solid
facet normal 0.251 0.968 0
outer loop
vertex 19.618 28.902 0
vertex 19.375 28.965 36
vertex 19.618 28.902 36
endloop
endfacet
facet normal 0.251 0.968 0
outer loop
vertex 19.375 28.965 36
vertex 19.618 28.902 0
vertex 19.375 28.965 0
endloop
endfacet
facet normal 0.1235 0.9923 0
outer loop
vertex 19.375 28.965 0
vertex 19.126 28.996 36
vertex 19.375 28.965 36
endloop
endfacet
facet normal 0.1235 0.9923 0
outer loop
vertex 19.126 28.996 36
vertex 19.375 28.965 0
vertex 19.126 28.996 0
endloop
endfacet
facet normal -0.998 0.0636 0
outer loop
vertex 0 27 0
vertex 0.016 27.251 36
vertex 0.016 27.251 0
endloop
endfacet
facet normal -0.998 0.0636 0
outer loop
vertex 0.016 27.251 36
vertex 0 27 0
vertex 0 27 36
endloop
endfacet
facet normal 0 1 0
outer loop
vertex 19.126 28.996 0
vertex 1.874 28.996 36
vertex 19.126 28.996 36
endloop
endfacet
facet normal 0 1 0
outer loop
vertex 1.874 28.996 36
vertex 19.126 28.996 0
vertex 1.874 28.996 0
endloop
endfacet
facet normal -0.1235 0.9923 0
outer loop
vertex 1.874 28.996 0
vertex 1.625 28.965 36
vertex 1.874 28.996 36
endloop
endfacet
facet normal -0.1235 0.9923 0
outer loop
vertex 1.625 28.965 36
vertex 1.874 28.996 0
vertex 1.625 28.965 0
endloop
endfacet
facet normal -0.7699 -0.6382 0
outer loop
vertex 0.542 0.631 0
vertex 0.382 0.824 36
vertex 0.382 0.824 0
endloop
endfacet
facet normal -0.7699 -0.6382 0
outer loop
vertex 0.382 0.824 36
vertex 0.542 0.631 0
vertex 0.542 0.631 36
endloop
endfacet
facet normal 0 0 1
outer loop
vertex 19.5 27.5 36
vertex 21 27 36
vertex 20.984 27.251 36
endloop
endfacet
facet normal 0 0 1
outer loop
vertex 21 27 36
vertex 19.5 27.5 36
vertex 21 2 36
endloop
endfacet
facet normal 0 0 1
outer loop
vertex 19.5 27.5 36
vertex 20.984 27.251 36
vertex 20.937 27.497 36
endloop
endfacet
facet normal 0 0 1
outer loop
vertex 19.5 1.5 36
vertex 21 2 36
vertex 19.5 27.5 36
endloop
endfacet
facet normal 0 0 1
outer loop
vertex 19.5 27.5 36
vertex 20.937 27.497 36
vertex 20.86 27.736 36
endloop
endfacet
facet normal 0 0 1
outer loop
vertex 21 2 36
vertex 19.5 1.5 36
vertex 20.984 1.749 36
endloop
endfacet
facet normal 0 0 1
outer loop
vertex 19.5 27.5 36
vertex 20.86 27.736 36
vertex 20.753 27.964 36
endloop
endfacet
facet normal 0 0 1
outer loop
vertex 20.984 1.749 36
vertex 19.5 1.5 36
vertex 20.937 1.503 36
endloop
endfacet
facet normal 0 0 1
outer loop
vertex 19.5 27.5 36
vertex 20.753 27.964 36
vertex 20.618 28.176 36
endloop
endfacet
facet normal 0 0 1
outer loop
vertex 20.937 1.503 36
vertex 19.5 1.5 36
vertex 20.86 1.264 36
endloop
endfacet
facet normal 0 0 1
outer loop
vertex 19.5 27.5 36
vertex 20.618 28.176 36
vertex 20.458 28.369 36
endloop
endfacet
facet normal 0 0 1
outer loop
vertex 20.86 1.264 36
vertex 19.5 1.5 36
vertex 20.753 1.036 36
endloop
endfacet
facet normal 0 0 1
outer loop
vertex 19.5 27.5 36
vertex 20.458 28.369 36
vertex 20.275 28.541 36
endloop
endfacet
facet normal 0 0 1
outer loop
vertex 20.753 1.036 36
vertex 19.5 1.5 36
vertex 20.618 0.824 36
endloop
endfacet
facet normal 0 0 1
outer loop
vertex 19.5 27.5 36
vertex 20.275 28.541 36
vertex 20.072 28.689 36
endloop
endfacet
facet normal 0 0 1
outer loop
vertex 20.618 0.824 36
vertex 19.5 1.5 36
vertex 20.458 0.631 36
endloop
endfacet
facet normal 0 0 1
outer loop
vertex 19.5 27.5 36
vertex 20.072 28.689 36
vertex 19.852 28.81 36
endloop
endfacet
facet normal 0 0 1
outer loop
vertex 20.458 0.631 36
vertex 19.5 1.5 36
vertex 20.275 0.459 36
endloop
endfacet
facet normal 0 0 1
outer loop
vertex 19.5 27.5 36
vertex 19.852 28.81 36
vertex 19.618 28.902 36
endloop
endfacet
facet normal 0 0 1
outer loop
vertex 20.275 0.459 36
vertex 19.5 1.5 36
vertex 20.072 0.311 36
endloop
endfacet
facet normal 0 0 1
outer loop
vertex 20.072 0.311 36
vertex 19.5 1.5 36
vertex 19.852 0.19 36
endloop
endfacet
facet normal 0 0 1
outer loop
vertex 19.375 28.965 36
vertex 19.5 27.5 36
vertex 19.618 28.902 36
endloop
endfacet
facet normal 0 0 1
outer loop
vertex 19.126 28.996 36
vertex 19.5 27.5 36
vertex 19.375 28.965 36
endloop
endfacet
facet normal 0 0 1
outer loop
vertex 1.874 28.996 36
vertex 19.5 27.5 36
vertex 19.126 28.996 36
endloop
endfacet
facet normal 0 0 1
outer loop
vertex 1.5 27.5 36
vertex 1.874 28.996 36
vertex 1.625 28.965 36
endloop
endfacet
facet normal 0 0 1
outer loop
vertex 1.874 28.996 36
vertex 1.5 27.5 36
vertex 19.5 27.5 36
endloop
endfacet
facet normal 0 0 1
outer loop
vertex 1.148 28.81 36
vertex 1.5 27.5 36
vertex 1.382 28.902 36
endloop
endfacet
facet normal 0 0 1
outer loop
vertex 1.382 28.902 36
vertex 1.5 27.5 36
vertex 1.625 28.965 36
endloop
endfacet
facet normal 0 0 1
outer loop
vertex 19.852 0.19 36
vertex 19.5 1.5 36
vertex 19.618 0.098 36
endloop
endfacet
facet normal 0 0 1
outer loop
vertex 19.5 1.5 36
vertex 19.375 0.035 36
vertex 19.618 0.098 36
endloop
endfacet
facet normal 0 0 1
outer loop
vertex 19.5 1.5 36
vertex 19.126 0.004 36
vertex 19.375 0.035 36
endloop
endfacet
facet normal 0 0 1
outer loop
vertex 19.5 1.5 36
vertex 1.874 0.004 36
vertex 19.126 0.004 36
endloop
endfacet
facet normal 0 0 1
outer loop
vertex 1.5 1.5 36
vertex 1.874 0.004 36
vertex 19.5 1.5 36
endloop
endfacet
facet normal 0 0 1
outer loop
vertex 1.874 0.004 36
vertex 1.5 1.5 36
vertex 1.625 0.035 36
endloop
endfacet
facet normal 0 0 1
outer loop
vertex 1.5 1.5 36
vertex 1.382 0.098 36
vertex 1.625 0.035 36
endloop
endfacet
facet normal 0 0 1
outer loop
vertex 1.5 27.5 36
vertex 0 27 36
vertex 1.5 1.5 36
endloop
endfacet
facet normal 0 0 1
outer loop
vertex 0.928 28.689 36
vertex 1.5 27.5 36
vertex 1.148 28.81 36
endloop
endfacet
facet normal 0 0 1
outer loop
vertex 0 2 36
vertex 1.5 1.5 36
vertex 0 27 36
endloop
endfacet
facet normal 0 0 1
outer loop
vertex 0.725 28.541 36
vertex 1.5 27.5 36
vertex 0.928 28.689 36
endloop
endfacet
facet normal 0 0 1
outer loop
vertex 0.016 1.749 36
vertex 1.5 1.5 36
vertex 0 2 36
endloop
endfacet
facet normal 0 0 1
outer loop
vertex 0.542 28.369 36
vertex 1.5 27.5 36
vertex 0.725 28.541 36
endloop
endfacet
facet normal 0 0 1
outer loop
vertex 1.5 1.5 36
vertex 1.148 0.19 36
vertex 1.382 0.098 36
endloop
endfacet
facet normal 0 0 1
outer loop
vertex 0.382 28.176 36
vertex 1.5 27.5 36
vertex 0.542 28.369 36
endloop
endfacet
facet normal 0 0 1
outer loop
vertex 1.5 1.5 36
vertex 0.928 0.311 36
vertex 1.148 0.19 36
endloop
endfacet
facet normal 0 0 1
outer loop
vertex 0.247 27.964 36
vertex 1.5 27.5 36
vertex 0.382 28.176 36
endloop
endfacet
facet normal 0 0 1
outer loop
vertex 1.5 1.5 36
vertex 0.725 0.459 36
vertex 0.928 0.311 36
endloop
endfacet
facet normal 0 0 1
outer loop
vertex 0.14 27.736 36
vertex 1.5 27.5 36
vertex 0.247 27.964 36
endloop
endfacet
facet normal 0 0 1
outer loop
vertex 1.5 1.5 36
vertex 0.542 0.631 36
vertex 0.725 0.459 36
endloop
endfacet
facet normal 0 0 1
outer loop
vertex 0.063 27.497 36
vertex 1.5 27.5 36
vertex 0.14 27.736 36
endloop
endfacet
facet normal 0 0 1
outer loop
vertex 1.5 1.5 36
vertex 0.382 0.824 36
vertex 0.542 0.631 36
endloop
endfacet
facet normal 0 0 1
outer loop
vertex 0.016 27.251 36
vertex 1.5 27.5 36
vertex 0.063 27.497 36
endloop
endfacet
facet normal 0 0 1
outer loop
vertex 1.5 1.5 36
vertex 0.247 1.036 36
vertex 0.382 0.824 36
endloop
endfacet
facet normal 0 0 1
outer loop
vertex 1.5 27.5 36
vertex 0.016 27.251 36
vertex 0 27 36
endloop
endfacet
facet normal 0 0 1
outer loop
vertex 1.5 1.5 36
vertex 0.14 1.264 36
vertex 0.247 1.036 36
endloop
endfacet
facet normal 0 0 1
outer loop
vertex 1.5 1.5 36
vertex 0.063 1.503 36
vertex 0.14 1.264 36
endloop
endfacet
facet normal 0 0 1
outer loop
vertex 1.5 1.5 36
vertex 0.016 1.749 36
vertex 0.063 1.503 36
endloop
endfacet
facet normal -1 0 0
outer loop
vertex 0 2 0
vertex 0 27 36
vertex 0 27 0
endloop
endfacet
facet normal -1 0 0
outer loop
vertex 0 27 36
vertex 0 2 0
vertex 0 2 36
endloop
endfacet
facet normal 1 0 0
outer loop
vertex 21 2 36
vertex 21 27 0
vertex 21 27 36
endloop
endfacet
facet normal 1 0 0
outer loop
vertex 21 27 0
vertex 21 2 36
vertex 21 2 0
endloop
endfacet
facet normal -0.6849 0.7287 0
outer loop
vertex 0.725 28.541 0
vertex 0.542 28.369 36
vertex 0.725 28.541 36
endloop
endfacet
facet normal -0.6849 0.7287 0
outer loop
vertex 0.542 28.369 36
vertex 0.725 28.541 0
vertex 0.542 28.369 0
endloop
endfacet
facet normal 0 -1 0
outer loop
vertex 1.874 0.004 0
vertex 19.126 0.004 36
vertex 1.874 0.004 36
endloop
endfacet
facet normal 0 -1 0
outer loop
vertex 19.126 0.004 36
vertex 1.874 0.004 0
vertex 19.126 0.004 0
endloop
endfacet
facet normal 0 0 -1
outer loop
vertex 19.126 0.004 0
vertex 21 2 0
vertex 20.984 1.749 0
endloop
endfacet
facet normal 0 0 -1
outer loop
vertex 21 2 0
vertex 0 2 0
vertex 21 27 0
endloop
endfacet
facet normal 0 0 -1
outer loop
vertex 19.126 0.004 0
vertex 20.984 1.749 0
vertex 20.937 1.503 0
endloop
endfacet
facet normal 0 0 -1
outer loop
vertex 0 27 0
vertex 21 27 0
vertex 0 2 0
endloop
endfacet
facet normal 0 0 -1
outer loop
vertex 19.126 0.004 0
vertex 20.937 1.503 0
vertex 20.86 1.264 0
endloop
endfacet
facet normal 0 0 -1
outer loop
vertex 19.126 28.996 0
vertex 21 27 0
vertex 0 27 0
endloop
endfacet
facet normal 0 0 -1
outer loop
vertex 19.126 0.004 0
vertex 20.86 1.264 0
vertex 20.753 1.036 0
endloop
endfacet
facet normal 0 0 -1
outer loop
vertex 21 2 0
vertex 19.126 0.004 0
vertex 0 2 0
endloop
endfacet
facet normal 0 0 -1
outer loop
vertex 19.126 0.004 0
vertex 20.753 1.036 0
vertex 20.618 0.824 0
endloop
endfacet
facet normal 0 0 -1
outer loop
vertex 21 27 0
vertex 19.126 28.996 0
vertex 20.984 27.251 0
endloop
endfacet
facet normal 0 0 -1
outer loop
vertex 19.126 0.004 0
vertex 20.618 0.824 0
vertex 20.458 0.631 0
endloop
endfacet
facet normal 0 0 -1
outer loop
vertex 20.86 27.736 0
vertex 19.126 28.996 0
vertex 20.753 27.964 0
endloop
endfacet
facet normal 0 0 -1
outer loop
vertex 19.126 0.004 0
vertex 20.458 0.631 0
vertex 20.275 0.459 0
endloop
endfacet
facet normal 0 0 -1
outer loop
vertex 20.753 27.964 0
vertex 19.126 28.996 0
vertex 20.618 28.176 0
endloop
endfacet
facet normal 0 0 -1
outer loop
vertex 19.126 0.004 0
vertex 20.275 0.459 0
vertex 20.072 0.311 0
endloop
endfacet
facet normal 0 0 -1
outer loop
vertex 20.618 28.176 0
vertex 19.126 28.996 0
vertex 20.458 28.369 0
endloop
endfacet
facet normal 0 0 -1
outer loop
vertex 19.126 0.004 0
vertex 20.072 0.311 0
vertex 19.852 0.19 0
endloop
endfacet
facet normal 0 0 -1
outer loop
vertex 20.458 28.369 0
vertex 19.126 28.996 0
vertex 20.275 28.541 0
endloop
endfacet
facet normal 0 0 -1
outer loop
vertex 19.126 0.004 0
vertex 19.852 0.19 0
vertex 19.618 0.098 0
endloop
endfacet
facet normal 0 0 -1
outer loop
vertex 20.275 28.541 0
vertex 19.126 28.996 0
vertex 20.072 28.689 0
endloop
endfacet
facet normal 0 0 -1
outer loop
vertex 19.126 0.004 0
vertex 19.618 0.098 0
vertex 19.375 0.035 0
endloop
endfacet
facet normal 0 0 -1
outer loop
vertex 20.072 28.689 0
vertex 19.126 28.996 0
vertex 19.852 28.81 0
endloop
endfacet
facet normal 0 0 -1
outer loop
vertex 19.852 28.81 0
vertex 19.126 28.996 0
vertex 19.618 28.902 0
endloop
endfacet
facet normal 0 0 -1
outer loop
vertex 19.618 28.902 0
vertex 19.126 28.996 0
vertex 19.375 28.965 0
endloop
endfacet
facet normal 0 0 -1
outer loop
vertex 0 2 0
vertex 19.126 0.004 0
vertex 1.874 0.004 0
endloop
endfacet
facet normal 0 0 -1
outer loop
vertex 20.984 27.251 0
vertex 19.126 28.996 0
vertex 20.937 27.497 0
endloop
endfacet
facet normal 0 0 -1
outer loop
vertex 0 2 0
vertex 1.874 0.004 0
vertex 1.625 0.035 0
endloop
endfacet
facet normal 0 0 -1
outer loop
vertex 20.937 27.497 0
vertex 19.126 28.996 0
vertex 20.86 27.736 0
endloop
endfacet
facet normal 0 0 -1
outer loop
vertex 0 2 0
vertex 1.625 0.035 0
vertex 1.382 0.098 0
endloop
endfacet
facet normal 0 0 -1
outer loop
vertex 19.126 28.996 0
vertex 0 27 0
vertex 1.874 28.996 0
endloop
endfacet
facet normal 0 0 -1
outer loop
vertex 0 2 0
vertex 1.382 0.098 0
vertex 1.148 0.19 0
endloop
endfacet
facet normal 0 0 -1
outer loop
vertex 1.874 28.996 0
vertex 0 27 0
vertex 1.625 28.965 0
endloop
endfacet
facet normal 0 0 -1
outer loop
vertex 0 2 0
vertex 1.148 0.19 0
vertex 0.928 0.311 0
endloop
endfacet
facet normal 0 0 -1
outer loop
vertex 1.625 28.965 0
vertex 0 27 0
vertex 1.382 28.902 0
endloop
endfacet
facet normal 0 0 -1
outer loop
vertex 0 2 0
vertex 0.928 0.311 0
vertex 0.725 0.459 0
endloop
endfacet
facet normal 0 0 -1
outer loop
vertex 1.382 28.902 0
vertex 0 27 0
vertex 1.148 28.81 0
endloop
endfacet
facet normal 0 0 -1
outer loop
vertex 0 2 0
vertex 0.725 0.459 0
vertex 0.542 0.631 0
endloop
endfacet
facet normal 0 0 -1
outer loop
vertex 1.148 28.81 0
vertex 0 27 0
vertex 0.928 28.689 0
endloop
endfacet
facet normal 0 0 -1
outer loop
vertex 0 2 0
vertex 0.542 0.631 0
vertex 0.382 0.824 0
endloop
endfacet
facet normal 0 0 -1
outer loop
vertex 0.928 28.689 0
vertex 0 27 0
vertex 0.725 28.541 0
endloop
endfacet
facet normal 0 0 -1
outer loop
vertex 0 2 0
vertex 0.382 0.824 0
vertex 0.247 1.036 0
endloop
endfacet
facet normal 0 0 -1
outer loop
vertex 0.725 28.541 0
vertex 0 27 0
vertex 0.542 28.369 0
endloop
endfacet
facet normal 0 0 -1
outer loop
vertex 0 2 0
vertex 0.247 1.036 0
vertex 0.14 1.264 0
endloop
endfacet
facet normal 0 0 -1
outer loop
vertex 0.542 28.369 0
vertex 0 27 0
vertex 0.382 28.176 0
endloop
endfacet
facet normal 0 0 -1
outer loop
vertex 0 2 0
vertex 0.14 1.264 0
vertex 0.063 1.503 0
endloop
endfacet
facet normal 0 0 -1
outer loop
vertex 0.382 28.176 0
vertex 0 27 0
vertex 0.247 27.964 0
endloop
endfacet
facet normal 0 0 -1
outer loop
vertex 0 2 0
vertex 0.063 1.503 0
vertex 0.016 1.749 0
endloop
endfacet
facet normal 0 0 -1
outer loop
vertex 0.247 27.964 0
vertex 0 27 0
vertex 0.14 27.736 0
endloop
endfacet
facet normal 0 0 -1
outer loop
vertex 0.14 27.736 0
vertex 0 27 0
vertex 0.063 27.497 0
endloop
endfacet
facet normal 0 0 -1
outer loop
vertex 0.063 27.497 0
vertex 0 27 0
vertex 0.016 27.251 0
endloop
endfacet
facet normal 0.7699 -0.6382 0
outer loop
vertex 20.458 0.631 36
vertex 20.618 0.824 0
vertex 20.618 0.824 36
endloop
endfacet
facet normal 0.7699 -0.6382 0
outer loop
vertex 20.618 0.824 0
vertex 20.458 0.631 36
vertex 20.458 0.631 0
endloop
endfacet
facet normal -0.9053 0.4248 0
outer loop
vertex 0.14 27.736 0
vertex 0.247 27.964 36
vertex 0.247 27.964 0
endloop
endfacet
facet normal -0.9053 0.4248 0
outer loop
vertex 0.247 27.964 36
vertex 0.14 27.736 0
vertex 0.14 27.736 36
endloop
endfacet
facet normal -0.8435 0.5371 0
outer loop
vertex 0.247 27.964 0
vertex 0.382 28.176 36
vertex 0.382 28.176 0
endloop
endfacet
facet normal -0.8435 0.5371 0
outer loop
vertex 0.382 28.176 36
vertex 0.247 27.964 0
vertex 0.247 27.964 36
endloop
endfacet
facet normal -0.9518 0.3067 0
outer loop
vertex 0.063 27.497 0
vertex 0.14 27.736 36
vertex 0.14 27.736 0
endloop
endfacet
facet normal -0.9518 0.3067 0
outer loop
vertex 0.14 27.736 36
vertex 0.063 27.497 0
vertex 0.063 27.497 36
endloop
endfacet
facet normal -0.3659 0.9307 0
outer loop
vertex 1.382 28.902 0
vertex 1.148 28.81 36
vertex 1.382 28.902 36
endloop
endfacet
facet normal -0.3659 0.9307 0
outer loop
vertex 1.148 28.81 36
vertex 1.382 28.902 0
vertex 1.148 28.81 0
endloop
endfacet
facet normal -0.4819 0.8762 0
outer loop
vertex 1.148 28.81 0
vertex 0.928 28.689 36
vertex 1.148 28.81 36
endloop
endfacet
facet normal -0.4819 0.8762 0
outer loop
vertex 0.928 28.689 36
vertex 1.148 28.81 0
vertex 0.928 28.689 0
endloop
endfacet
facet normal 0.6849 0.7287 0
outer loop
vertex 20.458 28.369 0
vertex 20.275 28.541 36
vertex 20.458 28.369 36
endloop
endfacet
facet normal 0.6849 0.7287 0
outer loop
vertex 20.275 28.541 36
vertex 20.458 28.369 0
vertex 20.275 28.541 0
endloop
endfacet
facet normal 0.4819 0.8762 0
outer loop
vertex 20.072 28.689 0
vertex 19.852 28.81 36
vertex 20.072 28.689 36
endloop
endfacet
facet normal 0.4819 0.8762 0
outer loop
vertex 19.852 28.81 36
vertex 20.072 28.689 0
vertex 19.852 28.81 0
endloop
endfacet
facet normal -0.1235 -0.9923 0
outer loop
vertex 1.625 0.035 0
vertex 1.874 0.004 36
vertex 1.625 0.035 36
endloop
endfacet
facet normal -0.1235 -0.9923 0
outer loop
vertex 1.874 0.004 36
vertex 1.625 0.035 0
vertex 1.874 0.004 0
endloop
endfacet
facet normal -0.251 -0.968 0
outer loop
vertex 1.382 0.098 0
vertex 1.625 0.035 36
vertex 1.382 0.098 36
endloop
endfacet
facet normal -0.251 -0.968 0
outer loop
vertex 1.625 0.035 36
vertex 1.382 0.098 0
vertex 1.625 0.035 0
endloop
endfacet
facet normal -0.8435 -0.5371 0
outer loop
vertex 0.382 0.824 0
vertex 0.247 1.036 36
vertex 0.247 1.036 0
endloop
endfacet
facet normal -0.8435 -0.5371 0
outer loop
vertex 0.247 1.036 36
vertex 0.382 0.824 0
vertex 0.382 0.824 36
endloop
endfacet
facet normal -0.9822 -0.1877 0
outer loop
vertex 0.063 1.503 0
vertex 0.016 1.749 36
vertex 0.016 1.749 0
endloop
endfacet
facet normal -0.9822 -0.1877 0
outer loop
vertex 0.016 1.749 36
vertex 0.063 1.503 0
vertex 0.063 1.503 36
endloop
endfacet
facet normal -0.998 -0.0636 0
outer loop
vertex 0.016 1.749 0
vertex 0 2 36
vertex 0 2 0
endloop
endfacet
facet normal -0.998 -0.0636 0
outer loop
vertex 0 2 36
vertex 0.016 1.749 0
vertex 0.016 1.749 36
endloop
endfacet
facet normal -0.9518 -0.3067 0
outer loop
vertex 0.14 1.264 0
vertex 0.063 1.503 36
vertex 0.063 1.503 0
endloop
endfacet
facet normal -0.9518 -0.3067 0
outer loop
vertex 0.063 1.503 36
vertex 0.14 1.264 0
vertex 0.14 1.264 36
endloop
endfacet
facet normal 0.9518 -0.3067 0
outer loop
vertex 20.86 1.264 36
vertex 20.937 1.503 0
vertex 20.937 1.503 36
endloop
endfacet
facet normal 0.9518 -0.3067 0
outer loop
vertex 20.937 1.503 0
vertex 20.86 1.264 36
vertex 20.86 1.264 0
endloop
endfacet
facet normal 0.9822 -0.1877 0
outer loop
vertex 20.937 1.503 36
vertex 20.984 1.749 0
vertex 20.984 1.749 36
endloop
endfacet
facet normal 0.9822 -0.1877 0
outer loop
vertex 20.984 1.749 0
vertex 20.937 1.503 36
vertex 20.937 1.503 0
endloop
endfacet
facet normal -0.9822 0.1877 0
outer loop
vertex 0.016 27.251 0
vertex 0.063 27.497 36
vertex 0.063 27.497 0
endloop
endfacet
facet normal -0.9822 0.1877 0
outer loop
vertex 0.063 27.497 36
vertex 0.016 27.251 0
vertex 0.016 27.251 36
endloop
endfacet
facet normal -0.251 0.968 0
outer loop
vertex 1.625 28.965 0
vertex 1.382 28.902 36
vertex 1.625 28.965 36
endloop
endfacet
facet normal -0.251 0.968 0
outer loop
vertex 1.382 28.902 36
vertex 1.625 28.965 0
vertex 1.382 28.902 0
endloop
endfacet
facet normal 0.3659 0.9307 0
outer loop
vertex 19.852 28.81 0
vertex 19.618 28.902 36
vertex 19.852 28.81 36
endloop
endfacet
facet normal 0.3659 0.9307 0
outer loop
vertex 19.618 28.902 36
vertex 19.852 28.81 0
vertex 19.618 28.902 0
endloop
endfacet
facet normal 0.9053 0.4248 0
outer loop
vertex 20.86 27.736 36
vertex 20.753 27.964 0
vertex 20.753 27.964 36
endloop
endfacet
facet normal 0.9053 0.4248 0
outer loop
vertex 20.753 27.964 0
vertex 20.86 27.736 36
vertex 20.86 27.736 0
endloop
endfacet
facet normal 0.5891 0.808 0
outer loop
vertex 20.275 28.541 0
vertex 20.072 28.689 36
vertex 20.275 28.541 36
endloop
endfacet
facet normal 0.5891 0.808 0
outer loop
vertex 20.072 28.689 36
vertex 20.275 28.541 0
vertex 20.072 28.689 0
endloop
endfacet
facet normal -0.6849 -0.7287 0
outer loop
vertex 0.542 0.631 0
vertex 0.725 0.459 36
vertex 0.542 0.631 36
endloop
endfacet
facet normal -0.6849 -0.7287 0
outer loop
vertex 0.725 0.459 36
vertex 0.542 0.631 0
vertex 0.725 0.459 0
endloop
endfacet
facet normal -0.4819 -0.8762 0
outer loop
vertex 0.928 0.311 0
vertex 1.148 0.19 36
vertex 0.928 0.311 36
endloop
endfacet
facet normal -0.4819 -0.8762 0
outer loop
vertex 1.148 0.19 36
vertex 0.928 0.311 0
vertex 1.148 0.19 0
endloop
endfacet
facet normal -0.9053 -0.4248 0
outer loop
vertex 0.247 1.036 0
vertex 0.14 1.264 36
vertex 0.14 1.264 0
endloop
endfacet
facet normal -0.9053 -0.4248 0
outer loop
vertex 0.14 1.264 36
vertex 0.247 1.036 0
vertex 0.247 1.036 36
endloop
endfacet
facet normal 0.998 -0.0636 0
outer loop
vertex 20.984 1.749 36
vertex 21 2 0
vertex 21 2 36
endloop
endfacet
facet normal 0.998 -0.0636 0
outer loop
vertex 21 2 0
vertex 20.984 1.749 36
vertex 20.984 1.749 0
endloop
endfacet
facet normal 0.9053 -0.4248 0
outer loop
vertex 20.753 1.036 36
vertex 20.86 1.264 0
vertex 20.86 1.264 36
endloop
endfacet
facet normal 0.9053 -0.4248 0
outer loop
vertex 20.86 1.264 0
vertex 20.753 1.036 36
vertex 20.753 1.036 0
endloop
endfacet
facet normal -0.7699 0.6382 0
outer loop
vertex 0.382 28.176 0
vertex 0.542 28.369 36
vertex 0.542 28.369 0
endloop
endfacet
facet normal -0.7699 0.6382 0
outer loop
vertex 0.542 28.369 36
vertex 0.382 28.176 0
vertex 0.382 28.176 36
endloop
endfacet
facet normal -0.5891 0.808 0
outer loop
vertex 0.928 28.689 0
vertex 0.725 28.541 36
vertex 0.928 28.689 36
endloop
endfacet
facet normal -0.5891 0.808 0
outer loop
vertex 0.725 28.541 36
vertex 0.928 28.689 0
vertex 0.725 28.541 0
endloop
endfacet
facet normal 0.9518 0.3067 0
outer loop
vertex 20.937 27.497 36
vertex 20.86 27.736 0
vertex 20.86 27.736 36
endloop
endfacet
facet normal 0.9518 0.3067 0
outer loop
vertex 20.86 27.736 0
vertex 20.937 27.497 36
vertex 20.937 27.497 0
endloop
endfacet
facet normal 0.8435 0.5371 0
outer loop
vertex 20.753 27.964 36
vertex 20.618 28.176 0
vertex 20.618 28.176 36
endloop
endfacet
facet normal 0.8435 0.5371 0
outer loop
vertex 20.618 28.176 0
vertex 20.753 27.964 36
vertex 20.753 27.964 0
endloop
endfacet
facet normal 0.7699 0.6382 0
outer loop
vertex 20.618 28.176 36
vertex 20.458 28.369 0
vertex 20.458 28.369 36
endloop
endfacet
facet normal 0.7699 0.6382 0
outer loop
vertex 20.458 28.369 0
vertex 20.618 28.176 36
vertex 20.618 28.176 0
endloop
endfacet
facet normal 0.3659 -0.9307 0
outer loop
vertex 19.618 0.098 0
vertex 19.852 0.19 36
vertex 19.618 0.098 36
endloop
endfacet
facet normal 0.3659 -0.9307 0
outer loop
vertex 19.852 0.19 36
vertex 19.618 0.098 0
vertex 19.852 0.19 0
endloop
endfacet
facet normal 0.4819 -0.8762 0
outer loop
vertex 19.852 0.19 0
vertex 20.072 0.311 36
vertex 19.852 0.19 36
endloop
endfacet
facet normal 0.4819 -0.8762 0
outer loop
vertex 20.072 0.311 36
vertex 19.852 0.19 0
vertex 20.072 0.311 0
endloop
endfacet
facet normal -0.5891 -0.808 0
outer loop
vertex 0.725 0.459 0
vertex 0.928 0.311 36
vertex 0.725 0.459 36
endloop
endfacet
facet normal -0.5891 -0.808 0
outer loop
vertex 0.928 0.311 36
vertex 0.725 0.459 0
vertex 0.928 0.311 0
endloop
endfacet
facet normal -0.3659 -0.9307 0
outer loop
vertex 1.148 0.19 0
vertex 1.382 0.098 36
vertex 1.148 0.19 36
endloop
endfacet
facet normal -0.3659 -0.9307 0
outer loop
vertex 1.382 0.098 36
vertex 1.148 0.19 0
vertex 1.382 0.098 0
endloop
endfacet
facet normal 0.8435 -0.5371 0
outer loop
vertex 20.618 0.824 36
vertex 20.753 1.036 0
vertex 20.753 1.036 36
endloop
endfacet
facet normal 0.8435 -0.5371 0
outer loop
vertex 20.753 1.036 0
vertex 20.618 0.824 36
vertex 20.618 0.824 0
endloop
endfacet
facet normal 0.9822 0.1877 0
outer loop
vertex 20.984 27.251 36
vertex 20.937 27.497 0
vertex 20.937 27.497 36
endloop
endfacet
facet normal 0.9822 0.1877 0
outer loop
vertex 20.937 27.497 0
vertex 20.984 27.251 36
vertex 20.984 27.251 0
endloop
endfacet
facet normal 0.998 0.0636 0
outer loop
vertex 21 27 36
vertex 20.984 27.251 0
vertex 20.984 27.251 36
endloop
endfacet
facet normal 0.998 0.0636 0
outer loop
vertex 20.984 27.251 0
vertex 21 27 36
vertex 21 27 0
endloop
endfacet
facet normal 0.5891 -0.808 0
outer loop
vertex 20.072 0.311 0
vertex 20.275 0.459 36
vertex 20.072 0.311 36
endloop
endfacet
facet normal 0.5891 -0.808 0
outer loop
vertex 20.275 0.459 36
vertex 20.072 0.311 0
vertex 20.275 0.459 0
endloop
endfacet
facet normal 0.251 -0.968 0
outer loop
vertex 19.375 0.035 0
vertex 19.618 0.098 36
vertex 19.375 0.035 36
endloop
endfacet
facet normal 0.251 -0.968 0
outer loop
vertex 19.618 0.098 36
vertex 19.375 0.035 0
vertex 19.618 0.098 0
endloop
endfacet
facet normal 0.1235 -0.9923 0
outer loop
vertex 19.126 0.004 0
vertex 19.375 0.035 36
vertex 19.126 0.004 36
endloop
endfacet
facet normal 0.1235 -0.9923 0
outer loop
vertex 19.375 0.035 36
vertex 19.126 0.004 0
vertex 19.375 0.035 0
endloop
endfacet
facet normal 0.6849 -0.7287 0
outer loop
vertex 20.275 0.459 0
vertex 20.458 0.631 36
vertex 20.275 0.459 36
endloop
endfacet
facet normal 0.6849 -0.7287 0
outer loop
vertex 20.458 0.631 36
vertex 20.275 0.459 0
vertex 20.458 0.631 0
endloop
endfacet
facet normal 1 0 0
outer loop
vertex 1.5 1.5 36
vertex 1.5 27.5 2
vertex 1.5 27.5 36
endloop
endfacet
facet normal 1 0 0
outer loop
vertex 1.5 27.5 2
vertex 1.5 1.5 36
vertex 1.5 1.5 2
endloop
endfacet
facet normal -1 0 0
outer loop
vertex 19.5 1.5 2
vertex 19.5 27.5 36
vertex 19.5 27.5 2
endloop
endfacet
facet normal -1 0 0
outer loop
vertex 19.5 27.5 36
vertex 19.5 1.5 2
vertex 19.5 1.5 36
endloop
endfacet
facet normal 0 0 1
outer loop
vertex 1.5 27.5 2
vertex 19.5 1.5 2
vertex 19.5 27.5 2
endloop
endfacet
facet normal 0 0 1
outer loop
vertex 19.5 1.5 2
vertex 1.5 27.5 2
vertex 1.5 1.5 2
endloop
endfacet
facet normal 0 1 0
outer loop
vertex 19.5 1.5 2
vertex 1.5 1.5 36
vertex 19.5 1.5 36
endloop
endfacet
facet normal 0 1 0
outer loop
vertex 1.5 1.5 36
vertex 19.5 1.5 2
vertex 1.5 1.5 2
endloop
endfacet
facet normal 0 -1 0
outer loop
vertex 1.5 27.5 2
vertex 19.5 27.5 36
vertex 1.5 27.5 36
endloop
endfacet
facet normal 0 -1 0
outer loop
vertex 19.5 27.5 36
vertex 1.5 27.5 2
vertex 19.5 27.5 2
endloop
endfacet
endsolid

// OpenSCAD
length = 21;
width = 29;
height = 36;
floorThickness = 2;
wallThickness = 1.5;

difference() {    
    $fn=50;
    minkowski()
    {
      translate([2,2,0])
        cube([length-4, width-4, height - 1]);
      cylinder(r=2,h=1);
    }
    
    //cube([length, width, height]);
    translate([wallThickness, wallThickness, floorThickness])
        cube([length - wallThickness * 2, width - wallThickness * 2, height - floorThickness]);
}
